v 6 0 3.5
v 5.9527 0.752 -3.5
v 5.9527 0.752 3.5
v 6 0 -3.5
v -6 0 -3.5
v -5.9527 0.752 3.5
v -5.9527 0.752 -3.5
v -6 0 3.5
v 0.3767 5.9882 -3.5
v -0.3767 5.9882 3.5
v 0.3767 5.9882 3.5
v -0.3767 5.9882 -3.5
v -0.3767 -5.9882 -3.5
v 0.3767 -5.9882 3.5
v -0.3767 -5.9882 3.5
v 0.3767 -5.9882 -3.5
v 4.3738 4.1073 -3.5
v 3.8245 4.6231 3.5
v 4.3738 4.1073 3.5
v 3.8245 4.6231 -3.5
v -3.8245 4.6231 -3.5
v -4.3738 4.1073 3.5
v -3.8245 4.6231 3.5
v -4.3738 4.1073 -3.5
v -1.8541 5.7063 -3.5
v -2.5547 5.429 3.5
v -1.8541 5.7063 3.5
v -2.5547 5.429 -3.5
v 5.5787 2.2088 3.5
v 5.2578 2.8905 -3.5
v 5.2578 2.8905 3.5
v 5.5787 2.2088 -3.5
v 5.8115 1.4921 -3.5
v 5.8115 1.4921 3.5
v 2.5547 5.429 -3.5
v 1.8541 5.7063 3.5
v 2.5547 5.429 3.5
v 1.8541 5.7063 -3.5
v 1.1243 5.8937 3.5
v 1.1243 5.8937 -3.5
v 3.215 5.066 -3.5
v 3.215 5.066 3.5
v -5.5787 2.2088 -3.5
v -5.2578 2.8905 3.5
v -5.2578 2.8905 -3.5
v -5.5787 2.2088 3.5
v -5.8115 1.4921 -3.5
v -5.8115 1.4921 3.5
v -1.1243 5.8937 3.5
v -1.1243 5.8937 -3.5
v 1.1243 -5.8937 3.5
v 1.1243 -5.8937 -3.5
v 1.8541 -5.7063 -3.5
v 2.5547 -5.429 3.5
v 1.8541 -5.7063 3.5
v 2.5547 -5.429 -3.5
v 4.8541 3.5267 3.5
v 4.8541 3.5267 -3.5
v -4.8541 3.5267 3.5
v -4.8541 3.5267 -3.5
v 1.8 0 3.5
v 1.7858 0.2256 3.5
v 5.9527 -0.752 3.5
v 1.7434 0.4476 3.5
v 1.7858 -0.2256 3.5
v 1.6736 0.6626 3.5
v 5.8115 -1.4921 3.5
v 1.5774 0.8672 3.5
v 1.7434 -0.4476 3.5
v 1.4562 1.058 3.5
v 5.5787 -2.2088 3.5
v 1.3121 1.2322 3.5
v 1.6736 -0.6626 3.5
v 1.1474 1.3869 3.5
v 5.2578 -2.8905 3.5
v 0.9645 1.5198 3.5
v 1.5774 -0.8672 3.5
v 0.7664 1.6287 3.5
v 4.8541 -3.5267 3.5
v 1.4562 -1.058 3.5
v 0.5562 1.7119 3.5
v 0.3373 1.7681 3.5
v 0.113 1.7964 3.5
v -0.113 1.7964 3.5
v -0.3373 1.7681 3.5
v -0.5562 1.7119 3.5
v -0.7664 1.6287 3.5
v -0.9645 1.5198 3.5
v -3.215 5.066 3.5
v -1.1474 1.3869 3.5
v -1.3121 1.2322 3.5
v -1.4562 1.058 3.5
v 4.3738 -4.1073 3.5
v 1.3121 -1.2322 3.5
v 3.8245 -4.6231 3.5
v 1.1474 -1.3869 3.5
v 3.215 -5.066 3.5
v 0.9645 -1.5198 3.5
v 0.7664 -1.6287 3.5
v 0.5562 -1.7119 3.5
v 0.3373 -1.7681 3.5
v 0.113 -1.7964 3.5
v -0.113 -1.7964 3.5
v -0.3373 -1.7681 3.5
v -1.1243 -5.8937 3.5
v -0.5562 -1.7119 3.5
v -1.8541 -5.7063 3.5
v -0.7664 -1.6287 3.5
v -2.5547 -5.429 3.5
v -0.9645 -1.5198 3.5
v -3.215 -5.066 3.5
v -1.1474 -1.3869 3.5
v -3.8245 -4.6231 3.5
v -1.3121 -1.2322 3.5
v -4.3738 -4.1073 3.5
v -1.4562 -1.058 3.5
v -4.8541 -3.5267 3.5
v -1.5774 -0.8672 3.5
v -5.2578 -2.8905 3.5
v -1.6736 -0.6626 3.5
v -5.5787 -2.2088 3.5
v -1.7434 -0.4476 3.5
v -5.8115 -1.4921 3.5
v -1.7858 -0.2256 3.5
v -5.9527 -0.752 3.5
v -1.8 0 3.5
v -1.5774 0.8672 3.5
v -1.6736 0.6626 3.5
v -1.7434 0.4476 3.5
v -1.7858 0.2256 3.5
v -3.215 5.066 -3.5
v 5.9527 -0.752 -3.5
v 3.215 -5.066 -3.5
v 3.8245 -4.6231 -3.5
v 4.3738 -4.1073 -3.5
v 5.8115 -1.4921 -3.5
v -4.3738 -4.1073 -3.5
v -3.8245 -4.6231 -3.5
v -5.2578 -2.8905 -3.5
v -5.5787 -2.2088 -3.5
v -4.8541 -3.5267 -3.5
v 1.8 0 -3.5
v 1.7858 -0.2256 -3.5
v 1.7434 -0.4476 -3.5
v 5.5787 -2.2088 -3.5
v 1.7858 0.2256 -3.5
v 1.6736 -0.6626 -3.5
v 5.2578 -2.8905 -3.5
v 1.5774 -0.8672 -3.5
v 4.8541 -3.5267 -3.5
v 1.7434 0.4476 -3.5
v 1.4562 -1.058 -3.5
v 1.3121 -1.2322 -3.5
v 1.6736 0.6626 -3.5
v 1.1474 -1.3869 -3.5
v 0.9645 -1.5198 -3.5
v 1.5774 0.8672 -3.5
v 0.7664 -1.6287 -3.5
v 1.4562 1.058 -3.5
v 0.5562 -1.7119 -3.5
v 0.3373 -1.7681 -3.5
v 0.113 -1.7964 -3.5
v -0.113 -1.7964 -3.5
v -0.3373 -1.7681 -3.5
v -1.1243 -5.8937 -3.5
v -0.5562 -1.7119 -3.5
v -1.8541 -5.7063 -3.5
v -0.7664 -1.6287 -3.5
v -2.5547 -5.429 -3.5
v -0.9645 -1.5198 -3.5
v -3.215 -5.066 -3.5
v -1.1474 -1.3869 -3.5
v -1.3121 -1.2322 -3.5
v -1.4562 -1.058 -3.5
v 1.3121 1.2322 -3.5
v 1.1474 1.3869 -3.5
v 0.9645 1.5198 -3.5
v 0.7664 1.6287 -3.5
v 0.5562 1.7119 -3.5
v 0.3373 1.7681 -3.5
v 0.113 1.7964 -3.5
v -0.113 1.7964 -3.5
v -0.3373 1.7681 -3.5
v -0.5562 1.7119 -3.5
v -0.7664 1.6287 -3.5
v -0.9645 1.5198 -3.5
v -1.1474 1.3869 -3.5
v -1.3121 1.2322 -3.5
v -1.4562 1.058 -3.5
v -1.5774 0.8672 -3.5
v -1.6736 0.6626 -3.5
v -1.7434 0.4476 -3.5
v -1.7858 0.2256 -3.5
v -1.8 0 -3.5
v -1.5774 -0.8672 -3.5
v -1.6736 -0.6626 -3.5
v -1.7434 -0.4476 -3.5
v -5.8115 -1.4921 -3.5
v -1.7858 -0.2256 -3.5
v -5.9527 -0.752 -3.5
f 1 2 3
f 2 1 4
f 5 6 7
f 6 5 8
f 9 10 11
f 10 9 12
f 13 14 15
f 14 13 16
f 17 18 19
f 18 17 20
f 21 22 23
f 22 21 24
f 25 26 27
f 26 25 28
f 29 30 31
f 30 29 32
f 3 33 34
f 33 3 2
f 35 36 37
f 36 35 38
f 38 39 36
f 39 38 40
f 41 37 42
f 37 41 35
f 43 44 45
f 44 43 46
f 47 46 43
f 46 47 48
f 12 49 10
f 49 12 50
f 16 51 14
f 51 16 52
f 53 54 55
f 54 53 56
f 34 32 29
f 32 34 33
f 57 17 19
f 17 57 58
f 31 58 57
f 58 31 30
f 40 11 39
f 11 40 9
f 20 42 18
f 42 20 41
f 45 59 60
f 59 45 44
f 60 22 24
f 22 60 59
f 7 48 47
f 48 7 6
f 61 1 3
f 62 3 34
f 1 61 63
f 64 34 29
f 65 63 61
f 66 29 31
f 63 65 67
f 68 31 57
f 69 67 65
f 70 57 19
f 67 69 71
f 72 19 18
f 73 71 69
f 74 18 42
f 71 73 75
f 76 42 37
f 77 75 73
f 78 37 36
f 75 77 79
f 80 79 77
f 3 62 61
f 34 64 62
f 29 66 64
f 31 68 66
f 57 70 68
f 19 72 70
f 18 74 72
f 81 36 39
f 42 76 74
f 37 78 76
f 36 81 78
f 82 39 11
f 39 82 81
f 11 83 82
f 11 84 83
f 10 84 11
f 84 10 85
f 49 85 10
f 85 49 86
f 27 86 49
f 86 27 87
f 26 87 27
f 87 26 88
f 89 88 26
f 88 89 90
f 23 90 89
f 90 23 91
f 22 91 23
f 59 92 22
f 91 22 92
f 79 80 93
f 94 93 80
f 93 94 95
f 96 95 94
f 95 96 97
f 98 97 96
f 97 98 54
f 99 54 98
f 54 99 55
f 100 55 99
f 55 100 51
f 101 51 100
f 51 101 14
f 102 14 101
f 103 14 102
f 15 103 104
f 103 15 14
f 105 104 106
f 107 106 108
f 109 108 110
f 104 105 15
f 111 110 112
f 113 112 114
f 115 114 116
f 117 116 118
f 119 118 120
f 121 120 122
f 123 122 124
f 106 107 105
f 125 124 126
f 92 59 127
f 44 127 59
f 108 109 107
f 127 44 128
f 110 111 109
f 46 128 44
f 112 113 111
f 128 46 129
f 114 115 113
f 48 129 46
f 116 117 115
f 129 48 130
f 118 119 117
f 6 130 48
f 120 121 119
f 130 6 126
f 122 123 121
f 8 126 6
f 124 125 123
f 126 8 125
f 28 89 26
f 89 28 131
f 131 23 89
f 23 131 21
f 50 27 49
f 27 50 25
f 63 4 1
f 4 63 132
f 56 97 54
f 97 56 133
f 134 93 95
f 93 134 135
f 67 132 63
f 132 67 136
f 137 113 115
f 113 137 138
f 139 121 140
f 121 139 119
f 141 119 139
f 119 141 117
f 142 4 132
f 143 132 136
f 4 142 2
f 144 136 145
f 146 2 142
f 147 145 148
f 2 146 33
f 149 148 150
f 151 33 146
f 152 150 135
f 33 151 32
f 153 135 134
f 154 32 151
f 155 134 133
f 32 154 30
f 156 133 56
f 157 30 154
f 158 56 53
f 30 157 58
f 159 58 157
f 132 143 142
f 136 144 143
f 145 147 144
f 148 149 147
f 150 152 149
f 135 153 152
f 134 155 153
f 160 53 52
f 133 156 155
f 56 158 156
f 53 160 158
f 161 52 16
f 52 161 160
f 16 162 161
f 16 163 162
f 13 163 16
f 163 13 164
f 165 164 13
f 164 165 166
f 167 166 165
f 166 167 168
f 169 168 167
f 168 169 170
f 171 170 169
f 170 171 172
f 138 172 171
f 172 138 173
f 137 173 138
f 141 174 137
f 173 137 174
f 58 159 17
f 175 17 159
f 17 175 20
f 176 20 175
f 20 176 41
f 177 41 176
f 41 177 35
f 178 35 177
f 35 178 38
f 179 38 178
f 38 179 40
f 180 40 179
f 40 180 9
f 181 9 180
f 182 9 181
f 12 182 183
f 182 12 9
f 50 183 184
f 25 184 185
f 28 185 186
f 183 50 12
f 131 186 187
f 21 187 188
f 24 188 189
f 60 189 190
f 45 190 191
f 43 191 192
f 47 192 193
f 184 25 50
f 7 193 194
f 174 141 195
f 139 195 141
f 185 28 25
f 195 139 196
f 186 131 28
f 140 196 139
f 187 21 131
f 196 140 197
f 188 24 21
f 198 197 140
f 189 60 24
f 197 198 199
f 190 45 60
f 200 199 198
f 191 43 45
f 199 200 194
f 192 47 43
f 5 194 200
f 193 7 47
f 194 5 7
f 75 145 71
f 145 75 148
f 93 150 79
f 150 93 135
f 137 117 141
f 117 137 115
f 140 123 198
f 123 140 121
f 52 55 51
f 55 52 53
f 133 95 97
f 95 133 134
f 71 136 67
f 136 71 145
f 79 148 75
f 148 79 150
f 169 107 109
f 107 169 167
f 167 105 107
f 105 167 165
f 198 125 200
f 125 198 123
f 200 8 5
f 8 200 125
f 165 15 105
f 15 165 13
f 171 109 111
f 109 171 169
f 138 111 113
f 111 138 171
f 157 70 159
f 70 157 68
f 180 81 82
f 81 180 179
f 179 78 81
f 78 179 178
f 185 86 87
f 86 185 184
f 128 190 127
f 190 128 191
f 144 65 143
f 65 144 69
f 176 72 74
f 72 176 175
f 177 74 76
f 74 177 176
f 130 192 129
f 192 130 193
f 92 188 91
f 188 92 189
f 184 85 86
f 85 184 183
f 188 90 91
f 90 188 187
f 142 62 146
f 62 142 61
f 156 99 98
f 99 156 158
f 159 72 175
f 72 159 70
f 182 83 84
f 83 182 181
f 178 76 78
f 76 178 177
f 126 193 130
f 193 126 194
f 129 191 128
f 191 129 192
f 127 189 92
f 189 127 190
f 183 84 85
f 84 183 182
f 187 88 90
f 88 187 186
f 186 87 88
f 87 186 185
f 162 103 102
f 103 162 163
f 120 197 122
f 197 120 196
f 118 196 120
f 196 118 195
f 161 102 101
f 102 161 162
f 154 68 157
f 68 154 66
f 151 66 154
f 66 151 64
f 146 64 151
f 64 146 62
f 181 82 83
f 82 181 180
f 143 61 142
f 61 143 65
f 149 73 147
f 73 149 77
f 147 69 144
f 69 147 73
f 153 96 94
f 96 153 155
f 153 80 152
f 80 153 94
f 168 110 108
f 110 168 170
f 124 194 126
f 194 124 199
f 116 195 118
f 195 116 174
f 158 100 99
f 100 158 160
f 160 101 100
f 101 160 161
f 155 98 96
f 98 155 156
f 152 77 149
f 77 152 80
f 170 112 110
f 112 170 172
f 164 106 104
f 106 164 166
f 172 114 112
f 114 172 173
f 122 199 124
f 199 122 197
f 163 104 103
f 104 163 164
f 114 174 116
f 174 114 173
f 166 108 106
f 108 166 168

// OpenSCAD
$fn = 50;


difference() {
	union() {
		translate(v = [0, 0, -3.5000000000]) {
			cylinder(h = 7, r = 6.0000000000);
		}
	}
	union() {
		translate(v = [0, 0, -100.0000000000]) {
			cylinder(h = 200, r = 1.8000000000);
		}
	}
}
